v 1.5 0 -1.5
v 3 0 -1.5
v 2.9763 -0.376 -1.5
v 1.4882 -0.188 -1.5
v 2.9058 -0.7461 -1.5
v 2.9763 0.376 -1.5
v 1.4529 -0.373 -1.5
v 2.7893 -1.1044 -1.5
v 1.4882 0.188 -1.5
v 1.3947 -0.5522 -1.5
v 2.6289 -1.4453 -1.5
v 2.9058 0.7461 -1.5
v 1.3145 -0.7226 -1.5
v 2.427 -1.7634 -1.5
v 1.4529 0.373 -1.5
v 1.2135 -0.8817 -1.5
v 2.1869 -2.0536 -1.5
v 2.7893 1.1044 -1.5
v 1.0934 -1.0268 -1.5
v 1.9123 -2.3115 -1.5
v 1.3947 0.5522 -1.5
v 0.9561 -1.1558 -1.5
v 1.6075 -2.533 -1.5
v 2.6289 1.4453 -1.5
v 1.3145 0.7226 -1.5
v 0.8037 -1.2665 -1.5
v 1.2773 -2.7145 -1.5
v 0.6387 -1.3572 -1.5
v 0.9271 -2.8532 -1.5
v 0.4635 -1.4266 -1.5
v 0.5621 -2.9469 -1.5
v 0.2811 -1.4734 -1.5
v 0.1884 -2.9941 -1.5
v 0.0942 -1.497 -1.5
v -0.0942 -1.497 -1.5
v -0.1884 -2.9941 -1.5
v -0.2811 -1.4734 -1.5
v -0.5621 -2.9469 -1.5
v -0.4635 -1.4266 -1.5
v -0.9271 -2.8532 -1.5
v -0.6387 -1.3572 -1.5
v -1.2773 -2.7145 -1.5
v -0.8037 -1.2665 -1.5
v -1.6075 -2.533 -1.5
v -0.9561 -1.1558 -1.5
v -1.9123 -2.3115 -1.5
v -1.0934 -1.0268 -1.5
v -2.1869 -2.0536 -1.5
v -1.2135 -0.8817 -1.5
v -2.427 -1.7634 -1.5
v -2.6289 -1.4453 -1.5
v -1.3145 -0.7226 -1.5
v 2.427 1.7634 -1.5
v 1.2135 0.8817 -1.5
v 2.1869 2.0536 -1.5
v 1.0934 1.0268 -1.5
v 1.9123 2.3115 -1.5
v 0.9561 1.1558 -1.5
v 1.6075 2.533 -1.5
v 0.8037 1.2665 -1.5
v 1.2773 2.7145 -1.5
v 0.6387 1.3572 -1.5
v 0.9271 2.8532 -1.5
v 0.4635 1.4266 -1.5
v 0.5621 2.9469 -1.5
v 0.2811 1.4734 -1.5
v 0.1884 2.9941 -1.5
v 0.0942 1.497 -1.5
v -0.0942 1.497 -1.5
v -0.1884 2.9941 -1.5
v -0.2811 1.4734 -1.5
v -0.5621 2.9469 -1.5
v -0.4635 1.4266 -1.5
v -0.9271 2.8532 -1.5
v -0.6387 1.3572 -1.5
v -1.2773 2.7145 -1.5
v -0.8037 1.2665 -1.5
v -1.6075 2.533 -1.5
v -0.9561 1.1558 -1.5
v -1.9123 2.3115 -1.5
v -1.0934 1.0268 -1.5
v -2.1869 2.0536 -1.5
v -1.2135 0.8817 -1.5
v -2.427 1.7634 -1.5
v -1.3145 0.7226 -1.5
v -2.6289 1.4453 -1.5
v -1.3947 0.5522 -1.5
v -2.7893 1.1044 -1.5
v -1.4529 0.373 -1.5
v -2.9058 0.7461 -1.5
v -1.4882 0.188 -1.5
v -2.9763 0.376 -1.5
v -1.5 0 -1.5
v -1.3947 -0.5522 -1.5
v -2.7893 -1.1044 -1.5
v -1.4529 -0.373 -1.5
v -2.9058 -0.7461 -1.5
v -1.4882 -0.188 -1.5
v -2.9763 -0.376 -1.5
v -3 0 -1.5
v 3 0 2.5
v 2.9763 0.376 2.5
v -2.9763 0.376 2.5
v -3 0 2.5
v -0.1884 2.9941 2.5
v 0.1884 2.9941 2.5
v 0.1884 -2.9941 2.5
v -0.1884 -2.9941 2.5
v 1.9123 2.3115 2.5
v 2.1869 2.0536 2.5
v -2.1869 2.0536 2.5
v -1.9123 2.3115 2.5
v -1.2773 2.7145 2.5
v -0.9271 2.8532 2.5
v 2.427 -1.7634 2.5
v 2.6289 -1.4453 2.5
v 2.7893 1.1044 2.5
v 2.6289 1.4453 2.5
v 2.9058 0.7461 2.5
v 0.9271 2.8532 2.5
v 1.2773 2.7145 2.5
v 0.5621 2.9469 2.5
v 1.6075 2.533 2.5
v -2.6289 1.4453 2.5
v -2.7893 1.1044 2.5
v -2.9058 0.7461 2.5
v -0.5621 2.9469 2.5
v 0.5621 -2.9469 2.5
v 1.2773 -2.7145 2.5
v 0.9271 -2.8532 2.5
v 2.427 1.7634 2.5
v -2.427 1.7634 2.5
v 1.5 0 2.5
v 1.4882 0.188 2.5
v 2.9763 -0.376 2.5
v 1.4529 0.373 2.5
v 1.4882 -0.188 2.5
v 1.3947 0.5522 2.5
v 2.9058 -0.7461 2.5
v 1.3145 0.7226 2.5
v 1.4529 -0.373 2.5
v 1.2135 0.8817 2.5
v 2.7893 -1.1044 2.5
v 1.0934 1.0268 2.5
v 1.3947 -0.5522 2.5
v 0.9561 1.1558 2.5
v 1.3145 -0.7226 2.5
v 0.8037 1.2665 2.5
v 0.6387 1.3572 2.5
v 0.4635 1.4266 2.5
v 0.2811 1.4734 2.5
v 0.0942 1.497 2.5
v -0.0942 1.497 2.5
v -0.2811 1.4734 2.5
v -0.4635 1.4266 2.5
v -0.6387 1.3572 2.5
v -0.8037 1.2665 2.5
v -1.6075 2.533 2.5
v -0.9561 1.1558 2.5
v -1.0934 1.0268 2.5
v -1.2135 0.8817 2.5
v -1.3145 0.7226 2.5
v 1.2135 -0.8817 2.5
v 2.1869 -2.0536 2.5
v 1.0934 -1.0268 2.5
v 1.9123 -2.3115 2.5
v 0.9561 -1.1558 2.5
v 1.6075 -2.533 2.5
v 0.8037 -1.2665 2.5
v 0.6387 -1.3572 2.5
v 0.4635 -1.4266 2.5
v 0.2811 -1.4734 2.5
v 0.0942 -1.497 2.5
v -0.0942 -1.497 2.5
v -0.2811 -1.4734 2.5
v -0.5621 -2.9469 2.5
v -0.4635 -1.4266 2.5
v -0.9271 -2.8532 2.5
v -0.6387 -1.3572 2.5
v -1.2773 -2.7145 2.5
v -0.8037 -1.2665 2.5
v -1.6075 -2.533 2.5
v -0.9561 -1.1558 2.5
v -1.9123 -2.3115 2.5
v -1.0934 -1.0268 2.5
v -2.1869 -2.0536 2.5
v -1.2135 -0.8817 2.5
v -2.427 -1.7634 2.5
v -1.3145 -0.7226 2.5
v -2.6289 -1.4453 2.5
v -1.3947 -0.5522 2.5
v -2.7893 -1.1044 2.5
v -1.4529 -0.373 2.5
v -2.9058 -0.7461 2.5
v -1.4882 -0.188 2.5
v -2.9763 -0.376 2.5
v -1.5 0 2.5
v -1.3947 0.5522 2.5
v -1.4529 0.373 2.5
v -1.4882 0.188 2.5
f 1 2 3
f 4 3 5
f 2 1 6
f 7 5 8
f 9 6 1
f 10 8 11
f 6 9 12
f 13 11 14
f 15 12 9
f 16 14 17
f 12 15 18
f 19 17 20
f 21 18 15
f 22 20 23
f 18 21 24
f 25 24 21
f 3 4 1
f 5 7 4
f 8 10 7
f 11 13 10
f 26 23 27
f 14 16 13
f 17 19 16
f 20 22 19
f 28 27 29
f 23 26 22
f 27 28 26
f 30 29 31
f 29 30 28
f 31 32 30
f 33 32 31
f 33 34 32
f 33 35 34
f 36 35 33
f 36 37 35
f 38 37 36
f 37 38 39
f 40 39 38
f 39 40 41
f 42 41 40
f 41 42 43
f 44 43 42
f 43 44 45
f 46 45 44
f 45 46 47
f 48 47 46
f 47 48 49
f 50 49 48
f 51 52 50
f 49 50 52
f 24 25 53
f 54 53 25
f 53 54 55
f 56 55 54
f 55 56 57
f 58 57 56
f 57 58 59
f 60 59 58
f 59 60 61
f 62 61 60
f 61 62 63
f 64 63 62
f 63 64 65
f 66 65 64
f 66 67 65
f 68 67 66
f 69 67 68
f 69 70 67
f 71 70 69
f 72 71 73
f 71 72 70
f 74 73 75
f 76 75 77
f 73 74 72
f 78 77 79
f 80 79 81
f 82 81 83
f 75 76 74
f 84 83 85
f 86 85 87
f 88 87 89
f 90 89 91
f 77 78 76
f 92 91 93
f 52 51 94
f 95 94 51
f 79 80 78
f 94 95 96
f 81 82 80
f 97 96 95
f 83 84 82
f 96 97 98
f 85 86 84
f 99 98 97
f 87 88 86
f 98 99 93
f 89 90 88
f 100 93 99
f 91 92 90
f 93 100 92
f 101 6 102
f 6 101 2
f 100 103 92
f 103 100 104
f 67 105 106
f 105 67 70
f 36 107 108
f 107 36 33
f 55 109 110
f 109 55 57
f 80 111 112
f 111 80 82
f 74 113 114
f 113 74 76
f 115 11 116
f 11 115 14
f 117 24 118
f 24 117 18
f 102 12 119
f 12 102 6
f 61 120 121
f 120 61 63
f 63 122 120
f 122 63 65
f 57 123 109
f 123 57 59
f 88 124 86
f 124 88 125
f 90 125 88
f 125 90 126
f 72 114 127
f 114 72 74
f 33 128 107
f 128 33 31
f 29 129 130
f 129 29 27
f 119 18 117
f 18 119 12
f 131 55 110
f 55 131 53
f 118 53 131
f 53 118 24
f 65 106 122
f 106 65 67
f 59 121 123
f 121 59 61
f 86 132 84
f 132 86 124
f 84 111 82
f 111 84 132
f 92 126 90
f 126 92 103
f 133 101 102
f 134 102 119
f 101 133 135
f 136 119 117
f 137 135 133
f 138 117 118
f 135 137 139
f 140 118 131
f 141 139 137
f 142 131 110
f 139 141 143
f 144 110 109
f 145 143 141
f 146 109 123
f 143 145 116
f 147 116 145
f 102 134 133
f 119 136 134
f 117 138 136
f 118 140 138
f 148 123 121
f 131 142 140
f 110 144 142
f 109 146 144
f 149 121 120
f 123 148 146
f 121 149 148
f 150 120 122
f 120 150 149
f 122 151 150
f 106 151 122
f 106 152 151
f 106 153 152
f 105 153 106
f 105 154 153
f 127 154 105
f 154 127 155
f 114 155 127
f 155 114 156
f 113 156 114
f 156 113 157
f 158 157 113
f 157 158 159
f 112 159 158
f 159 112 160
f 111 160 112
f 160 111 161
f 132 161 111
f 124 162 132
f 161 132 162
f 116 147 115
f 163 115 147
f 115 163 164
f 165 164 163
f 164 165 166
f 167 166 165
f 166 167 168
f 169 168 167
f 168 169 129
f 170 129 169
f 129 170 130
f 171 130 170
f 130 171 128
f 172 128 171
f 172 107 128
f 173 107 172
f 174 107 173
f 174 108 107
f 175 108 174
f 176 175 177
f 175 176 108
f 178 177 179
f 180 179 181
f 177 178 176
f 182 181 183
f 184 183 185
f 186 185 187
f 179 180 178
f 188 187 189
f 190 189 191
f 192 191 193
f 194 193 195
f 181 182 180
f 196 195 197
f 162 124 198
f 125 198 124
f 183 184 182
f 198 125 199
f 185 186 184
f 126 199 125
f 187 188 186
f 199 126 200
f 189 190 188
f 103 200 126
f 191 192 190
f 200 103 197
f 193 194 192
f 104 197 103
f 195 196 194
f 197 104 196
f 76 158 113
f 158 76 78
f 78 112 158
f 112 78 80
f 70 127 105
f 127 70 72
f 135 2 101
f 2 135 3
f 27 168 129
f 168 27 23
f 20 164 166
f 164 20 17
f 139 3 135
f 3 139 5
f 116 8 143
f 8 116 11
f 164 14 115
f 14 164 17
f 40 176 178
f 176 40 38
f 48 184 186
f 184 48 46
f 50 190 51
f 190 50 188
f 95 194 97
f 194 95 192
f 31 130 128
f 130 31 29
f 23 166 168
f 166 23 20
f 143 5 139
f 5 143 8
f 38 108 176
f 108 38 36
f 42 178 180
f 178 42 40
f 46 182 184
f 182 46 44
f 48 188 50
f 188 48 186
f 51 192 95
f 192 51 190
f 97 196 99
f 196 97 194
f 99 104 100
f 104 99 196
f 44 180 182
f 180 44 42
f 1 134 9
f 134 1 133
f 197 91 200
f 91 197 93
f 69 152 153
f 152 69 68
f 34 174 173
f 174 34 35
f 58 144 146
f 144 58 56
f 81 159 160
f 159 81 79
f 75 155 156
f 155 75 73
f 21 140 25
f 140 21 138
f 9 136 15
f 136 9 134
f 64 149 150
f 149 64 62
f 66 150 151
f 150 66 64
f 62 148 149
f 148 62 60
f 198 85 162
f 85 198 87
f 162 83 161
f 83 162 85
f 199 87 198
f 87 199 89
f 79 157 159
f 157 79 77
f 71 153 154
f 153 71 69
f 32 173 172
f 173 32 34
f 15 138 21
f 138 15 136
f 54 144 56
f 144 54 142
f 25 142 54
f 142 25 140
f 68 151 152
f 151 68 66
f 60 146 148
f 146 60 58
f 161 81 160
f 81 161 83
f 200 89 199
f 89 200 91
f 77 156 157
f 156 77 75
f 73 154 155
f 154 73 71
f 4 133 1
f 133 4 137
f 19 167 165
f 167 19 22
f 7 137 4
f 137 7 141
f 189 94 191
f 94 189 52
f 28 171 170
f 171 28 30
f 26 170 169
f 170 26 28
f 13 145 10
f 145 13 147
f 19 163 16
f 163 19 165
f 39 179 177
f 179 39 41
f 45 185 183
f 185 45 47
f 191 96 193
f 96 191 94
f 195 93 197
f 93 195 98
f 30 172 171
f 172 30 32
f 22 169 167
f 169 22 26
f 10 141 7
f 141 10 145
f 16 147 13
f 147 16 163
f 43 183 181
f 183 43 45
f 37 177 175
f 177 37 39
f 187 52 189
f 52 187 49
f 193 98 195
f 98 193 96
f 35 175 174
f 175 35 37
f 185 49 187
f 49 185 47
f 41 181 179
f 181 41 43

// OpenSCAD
$fn = 50;


difference() {
	union() {
		translate(v = [0, 0, -1.5000000000]) {
			cylinder(h = 3, r = 1.0000000000);
		}
		translate(v = [0, 0, -1.5000000000]) {
			cylinder(h = 4, r = 3.0000000000);
		}
	}
	union() {
		translate(v = [0, 0, -50.0000000000]) {
			cylinder(h = 100, r = 1.5000000000);
		}
	}
}
